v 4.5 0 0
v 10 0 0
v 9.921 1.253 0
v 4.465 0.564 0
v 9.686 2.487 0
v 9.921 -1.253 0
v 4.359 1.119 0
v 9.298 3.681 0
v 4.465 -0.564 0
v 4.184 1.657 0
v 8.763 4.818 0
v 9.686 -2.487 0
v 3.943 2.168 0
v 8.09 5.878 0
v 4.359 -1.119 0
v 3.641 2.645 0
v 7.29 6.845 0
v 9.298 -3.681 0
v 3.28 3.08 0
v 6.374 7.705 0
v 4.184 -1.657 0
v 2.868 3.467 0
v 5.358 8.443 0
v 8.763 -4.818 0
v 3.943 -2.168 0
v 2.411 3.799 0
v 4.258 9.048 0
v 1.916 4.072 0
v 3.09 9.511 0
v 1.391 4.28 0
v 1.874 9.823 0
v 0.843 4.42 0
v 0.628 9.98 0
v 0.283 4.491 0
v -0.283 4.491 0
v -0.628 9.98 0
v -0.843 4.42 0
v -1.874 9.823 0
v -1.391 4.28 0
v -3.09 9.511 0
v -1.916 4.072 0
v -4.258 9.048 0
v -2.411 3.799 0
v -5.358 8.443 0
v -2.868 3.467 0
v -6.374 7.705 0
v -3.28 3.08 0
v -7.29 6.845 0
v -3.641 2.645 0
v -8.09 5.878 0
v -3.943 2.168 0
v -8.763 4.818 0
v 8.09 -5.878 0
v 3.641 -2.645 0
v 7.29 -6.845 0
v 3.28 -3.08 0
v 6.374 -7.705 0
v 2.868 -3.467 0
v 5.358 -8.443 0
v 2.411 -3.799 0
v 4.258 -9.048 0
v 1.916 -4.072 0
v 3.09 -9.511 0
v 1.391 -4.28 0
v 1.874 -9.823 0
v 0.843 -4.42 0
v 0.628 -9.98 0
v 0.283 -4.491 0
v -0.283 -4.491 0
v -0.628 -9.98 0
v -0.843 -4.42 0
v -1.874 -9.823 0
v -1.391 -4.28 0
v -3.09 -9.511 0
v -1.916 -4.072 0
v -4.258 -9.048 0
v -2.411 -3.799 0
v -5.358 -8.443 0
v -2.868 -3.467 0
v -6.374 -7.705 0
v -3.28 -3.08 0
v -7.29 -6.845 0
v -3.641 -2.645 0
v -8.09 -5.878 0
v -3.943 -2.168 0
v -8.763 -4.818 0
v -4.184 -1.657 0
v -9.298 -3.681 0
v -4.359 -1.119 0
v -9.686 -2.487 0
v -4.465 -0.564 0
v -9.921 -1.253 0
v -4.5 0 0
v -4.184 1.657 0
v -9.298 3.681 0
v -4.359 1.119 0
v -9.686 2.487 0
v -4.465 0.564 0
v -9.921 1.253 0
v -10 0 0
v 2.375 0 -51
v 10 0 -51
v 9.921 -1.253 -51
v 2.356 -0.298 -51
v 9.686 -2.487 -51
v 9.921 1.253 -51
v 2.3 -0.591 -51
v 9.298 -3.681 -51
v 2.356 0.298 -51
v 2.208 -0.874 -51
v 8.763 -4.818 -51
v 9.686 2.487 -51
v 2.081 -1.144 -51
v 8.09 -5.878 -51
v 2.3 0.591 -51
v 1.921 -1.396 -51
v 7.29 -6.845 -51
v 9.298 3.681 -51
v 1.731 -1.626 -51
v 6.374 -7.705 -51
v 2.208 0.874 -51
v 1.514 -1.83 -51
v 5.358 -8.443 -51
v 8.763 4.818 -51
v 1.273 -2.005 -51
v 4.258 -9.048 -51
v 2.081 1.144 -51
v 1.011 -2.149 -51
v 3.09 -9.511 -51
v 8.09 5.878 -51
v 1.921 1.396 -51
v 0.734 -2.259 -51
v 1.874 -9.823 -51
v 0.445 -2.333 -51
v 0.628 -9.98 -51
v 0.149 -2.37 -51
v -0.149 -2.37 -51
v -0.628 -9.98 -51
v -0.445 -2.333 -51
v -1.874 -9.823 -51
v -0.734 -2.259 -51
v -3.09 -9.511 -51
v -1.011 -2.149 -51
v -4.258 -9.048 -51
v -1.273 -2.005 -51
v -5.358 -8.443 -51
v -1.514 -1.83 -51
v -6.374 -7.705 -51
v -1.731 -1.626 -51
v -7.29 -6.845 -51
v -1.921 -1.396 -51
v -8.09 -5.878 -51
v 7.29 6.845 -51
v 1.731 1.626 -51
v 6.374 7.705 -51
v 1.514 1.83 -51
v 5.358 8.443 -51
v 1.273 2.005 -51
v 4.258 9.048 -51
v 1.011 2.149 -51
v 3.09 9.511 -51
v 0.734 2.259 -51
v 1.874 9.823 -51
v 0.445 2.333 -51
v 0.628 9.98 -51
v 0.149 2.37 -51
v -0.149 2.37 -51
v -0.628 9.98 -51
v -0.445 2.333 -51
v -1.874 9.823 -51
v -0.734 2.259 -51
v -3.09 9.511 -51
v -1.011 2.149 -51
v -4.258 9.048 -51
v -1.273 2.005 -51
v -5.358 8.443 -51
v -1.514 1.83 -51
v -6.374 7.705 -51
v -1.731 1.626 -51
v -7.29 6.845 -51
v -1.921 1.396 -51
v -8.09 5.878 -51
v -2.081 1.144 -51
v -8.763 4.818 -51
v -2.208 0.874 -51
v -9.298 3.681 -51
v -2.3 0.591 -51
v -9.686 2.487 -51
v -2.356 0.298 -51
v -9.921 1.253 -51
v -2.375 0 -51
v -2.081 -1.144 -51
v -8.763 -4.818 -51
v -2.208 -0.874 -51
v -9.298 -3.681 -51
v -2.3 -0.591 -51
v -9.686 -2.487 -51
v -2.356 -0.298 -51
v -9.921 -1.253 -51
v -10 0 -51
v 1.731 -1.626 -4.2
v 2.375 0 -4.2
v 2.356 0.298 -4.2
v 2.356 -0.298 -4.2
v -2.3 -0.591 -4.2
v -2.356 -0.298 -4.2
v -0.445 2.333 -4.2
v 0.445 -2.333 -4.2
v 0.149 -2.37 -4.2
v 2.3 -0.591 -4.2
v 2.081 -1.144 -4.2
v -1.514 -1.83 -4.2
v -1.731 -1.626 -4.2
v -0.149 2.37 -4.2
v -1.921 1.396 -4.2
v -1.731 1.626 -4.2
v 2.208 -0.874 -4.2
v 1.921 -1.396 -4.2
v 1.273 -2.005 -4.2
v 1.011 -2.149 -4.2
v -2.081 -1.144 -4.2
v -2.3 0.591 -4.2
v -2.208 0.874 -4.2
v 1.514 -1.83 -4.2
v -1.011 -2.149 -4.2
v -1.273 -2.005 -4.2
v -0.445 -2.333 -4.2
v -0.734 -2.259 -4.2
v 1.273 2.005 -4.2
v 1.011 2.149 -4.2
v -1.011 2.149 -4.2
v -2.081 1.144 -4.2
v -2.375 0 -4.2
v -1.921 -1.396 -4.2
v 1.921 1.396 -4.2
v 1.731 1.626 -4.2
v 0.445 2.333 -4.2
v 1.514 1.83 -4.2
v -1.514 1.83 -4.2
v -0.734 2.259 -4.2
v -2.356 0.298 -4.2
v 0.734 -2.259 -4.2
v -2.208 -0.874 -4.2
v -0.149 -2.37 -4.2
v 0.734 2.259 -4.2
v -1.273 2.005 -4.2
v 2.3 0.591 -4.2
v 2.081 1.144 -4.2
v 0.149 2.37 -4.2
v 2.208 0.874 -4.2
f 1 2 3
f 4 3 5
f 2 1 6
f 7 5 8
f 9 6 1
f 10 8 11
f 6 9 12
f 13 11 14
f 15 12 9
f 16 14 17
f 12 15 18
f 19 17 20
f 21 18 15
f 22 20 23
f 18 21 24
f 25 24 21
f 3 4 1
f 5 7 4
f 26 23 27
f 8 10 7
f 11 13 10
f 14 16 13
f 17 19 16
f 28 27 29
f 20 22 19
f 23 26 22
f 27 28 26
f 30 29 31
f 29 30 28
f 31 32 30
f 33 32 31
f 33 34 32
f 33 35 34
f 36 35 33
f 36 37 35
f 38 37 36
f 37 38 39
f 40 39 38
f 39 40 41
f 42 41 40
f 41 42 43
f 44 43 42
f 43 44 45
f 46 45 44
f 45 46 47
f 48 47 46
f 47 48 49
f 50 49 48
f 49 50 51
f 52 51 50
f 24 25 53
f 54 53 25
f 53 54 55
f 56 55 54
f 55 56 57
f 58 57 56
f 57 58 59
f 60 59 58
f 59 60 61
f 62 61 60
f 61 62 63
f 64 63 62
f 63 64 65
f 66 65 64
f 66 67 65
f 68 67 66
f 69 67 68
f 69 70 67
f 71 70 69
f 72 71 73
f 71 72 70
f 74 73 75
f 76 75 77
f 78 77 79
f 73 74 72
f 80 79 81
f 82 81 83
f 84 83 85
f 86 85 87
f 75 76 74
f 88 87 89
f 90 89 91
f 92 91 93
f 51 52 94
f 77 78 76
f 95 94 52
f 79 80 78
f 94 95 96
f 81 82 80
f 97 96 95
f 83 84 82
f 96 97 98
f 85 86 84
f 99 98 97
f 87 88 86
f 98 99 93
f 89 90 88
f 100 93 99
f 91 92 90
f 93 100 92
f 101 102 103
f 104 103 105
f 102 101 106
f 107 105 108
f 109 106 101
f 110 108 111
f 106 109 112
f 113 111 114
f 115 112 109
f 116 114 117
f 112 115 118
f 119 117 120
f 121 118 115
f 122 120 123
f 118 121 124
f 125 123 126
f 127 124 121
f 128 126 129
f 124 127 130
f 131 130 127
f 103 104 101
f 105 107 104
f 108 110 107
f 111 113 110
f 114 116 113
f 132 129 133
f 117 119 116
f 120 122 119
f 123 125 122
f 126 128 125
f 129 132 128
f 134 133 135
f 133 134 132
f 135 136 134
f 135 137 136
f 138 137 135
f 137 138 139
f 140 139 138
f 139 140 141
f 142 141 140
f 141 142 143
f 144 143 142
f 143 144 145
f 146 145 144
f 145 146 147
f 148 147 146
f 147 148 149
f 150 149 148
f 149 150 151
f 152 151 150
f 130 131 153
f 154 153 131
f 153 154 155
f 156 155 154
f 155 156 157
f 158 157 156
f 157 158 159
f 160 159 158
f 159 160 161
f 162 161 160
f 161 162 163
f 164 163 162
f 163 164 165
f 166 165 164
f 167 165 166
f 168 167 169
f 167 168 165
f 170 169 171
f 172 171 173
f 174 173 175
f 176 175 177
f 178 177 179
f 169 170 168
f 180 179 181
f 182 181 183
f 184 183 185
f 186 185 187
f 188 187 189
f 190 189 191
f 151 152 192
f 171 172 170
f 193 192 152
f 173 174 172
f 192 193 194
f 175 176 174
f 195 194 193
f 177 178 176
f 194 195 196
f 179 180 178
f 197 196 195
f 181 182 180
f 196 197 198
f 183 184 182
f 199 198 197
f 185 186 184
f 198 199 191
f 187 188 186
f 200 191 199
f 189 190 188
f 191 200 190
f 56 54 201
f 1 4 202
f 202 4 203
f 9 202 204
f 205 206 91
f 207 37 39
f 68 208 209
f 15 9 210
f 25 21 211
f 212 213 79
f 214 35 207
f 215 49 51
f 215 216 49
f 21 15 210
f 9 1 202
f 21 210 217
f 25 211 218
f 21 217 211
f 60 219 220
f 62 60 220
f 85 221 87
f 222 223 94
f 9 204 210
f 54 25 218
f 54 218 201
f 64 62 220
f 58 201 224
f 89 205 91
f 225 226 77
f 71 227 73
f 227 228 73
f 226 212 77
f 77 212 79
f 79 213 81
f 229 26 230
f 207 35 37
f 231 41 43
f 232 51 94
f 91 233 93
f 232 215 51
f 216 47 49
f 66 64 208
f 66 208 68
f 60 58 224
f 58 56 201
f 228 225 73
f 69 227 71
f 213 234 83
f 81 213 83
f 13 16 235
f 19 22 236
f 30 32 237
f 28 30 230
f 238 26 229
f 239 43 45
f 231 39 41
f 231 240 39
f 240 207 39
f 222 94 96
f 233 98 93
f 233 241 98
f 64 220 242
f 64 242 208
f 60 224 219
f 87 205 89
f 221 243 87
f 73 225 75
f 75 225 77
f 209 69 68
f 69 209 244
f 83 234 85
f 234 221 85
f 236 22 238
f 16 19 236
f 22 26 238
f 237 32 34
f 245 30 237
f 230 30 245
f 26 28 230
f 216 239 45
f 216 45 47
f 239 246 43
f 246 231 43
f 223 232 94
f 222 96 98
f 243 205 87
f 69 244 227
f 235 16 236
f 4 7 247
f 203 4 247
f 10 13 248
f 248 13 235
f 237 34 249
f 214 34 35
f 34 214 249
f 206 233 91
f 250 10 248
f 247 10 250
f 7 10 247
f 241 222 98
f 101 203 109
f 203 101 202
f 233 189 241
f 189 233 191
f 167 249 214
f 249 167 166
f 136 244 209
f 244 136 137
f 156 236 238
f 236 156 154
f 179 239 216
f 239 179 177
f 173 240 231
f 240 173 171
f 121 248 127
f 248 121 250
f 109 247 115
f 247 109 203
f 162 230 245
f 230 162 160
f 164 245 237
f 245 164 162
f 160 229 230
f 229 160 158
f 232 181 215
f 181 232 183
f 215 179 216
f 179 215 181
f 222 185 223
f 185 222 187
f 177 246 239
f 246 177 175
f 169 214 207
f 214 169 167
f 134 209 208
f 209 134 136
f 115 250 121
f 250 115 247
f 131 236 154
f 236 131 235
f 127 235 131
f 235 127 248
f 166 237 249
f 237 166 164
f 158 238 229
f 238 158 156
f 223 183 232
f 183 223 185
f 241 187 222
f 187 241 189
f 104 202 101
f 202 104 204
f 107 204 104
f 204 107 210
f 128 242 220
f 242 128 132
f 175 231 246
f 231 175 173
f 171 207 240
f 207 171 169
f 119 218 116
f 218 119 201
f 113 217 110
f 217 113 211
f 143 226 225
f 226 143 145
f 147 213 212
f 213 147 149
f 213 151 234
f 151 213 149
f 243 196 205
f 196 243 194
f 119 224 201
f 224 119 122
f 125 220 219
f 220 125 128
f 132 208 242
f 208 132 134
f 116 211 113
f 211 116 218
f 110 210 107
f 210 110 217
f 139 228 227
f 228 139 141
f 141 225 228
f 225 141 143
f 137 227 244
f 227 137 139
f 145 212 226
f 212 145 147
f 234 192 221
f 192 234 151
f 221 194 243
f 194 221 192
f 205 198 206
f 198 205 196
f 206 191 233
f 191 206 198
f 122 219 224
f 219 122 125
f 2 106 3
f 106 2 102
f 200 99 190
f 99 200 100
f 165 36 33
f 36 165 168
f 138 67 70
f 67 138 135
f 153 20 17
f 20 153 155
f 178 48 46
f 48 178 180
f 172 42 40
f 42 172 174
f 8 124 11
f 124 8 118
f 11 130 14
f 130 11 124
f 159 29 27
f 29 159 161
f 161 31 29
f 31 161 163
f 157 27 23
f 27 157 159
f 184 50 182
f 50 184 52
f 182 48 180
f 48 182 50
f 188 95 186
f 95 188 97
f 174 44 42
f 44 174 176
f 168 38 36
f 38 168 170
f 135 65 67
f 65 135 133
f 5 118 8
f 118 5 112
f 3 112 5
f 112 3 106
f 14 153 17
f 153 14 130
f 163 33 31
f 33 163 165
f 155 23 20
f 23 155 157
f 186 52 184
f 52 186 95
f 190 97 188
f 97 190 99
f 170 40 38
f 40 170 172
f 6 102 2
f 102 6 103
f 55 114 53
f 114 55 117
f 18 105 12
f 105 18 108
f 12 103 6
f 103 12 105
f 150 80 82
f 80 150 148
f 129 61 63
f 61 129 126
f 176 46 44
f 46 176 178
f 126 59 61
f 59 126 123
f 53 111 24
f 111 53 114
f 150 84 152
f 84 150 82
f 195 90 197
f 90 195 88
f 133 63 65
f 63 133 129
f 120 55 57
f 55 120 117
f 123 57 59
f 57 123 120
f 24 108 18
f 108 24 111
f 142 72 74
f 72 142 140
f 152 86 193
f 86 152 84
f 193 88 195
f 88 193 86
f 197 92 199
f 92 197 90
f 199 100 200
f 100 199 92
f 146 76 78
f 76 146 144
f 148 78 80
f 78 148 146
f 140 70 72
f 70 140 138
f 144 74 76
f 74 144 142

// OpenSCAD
$fn = 50;


difference() {
	union() {
		translate(v = [0, 0, -51.0000000000]) {
			cylinder(h = 51, r = 10.0000000000);
		}
		cylinder(h = 0, r = 13.0000000000);
	}
	union() {
		translate(v = [0, 0, 0]) {
			rotate(a = [0, 0, 0]) {
				difference() {
					union() {
						#translate(v = [0, 0, -51.0000000000]) {
							cylinder(h = 51, r = 2.2500000000);
						}
						#translate(v = [0, 0, -4.2000000000]) {
							cylinder(h = 4.2000000000, r = 10.0000000000, r1 = 2.3750000000, r2 = 4.5000000000);
						}
						#translate(v = [0, 0, -51.0000000000]) {
							cylinder(h = 51, r = 2.3750000000);
						}
						#translate(v = [0, 0, -51.0000000000]) {
							cylinder(h = 51, r = 2.2500000000);
						}
					}
					union();
				}
			}
		}
	}
}
